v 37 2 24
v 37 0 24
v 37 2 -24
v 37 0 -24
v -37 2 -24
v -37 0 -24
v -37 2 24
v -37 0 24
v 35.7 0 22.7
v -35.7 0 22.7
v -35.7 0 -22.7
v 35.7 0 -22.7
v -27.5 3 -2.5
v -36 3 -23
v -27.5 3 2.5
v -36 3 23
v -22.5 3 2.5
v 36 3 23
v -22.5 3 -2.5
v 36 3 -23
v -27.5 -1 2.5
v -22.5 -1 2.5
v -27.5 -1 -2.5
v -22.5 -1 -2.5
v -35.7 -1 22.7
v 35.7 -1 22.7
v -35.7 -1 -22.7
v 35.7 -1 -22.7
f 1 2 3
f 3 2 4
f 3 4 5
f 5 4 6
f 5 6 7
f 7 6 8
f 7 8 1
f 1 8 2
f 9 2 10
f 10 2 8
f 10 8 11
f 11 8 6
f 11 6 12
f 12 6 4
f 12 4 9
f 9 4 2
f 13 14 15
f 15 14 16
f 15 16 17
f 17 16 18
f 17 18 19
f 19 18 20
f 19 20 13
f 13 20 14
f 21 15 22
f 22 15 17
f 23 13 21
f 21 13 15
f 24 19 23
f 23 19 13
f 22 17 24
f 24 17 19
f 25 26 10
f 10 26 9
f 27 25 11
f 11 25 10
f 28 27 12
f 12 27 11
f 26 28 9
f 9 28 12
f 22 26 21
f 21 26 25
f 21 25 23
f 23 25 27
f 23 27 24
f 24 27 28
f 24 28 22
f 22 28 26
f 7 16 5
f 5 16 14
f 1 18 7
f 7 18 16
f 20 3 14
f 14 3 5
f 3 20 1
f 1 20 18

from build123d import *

# Parameters (mm, degrees)
SKETCH1_W           = 74
SKETCH1_H           = 48
SKETCH1_W_2         = 5
SKETCH1_H_2         = 5
BOSS_EXTRUDE1_DEPTH = 3
BOSS_EXTRUDE2_START = -1
SKETCH1_4_W         = 71.4
SKETCH1_4_H         = 45.4
SKETCH1_4_W_2       = 5
SKETCH1_4_H_2       = 5
BOSS_EXTRUDE2_DEPTH = 1
CHAMFER1_SIZE       = 1


with BuildPart() as part:
    # Sketch1 → Boss-Extrude1 (new body)
    with BuildSketch(Plane(origin=(0, 0, 0), x_dir=(1, 0, 0), z_dir=(0, 1, 0))):
        Rectangle(SKETCH1_W, SKETCH1_H)
        with Locations((-25, 0)):
            Rectangle(SKETCH1_W_2, SKETCH1_H_2, mode=Mode.SUBTRACT)
    extrude(amount=BOSS_EXTRUDE1_DEPTH)

    # Sketch1<4> → Boss-Extrude2 (add)
    with BuildSketch(Plane(origin=(0, 0, 0), x_dir=(1, 0, 0), z_dir=(0, 1, 0)).offset(BOSS_EXTRUDE2_START)):
        Rectangle(SKETCH1_4_W, SKETCH1_4_H)
        with Locations((-25, 0)):
            Rectangle(SKETCH1_4_W_2, SKETCH1_4_H_2, mode=Mode.SUBTRACT)
    extrude(amount=BOSS_EXTRUDE2_DEPTH)

    # Chamfer1
    chamfer1_edges = [part.edges().sort_by_distance(p)[0] for p in [
        (0, 3, 24),
        (37, 3, 0),
        (0, 3, -24),
        (-37, 3, 0),
    ]]
    chamfer(chamfer1_edges, length=CHAMFER1_SIZE)


solid = part.part
